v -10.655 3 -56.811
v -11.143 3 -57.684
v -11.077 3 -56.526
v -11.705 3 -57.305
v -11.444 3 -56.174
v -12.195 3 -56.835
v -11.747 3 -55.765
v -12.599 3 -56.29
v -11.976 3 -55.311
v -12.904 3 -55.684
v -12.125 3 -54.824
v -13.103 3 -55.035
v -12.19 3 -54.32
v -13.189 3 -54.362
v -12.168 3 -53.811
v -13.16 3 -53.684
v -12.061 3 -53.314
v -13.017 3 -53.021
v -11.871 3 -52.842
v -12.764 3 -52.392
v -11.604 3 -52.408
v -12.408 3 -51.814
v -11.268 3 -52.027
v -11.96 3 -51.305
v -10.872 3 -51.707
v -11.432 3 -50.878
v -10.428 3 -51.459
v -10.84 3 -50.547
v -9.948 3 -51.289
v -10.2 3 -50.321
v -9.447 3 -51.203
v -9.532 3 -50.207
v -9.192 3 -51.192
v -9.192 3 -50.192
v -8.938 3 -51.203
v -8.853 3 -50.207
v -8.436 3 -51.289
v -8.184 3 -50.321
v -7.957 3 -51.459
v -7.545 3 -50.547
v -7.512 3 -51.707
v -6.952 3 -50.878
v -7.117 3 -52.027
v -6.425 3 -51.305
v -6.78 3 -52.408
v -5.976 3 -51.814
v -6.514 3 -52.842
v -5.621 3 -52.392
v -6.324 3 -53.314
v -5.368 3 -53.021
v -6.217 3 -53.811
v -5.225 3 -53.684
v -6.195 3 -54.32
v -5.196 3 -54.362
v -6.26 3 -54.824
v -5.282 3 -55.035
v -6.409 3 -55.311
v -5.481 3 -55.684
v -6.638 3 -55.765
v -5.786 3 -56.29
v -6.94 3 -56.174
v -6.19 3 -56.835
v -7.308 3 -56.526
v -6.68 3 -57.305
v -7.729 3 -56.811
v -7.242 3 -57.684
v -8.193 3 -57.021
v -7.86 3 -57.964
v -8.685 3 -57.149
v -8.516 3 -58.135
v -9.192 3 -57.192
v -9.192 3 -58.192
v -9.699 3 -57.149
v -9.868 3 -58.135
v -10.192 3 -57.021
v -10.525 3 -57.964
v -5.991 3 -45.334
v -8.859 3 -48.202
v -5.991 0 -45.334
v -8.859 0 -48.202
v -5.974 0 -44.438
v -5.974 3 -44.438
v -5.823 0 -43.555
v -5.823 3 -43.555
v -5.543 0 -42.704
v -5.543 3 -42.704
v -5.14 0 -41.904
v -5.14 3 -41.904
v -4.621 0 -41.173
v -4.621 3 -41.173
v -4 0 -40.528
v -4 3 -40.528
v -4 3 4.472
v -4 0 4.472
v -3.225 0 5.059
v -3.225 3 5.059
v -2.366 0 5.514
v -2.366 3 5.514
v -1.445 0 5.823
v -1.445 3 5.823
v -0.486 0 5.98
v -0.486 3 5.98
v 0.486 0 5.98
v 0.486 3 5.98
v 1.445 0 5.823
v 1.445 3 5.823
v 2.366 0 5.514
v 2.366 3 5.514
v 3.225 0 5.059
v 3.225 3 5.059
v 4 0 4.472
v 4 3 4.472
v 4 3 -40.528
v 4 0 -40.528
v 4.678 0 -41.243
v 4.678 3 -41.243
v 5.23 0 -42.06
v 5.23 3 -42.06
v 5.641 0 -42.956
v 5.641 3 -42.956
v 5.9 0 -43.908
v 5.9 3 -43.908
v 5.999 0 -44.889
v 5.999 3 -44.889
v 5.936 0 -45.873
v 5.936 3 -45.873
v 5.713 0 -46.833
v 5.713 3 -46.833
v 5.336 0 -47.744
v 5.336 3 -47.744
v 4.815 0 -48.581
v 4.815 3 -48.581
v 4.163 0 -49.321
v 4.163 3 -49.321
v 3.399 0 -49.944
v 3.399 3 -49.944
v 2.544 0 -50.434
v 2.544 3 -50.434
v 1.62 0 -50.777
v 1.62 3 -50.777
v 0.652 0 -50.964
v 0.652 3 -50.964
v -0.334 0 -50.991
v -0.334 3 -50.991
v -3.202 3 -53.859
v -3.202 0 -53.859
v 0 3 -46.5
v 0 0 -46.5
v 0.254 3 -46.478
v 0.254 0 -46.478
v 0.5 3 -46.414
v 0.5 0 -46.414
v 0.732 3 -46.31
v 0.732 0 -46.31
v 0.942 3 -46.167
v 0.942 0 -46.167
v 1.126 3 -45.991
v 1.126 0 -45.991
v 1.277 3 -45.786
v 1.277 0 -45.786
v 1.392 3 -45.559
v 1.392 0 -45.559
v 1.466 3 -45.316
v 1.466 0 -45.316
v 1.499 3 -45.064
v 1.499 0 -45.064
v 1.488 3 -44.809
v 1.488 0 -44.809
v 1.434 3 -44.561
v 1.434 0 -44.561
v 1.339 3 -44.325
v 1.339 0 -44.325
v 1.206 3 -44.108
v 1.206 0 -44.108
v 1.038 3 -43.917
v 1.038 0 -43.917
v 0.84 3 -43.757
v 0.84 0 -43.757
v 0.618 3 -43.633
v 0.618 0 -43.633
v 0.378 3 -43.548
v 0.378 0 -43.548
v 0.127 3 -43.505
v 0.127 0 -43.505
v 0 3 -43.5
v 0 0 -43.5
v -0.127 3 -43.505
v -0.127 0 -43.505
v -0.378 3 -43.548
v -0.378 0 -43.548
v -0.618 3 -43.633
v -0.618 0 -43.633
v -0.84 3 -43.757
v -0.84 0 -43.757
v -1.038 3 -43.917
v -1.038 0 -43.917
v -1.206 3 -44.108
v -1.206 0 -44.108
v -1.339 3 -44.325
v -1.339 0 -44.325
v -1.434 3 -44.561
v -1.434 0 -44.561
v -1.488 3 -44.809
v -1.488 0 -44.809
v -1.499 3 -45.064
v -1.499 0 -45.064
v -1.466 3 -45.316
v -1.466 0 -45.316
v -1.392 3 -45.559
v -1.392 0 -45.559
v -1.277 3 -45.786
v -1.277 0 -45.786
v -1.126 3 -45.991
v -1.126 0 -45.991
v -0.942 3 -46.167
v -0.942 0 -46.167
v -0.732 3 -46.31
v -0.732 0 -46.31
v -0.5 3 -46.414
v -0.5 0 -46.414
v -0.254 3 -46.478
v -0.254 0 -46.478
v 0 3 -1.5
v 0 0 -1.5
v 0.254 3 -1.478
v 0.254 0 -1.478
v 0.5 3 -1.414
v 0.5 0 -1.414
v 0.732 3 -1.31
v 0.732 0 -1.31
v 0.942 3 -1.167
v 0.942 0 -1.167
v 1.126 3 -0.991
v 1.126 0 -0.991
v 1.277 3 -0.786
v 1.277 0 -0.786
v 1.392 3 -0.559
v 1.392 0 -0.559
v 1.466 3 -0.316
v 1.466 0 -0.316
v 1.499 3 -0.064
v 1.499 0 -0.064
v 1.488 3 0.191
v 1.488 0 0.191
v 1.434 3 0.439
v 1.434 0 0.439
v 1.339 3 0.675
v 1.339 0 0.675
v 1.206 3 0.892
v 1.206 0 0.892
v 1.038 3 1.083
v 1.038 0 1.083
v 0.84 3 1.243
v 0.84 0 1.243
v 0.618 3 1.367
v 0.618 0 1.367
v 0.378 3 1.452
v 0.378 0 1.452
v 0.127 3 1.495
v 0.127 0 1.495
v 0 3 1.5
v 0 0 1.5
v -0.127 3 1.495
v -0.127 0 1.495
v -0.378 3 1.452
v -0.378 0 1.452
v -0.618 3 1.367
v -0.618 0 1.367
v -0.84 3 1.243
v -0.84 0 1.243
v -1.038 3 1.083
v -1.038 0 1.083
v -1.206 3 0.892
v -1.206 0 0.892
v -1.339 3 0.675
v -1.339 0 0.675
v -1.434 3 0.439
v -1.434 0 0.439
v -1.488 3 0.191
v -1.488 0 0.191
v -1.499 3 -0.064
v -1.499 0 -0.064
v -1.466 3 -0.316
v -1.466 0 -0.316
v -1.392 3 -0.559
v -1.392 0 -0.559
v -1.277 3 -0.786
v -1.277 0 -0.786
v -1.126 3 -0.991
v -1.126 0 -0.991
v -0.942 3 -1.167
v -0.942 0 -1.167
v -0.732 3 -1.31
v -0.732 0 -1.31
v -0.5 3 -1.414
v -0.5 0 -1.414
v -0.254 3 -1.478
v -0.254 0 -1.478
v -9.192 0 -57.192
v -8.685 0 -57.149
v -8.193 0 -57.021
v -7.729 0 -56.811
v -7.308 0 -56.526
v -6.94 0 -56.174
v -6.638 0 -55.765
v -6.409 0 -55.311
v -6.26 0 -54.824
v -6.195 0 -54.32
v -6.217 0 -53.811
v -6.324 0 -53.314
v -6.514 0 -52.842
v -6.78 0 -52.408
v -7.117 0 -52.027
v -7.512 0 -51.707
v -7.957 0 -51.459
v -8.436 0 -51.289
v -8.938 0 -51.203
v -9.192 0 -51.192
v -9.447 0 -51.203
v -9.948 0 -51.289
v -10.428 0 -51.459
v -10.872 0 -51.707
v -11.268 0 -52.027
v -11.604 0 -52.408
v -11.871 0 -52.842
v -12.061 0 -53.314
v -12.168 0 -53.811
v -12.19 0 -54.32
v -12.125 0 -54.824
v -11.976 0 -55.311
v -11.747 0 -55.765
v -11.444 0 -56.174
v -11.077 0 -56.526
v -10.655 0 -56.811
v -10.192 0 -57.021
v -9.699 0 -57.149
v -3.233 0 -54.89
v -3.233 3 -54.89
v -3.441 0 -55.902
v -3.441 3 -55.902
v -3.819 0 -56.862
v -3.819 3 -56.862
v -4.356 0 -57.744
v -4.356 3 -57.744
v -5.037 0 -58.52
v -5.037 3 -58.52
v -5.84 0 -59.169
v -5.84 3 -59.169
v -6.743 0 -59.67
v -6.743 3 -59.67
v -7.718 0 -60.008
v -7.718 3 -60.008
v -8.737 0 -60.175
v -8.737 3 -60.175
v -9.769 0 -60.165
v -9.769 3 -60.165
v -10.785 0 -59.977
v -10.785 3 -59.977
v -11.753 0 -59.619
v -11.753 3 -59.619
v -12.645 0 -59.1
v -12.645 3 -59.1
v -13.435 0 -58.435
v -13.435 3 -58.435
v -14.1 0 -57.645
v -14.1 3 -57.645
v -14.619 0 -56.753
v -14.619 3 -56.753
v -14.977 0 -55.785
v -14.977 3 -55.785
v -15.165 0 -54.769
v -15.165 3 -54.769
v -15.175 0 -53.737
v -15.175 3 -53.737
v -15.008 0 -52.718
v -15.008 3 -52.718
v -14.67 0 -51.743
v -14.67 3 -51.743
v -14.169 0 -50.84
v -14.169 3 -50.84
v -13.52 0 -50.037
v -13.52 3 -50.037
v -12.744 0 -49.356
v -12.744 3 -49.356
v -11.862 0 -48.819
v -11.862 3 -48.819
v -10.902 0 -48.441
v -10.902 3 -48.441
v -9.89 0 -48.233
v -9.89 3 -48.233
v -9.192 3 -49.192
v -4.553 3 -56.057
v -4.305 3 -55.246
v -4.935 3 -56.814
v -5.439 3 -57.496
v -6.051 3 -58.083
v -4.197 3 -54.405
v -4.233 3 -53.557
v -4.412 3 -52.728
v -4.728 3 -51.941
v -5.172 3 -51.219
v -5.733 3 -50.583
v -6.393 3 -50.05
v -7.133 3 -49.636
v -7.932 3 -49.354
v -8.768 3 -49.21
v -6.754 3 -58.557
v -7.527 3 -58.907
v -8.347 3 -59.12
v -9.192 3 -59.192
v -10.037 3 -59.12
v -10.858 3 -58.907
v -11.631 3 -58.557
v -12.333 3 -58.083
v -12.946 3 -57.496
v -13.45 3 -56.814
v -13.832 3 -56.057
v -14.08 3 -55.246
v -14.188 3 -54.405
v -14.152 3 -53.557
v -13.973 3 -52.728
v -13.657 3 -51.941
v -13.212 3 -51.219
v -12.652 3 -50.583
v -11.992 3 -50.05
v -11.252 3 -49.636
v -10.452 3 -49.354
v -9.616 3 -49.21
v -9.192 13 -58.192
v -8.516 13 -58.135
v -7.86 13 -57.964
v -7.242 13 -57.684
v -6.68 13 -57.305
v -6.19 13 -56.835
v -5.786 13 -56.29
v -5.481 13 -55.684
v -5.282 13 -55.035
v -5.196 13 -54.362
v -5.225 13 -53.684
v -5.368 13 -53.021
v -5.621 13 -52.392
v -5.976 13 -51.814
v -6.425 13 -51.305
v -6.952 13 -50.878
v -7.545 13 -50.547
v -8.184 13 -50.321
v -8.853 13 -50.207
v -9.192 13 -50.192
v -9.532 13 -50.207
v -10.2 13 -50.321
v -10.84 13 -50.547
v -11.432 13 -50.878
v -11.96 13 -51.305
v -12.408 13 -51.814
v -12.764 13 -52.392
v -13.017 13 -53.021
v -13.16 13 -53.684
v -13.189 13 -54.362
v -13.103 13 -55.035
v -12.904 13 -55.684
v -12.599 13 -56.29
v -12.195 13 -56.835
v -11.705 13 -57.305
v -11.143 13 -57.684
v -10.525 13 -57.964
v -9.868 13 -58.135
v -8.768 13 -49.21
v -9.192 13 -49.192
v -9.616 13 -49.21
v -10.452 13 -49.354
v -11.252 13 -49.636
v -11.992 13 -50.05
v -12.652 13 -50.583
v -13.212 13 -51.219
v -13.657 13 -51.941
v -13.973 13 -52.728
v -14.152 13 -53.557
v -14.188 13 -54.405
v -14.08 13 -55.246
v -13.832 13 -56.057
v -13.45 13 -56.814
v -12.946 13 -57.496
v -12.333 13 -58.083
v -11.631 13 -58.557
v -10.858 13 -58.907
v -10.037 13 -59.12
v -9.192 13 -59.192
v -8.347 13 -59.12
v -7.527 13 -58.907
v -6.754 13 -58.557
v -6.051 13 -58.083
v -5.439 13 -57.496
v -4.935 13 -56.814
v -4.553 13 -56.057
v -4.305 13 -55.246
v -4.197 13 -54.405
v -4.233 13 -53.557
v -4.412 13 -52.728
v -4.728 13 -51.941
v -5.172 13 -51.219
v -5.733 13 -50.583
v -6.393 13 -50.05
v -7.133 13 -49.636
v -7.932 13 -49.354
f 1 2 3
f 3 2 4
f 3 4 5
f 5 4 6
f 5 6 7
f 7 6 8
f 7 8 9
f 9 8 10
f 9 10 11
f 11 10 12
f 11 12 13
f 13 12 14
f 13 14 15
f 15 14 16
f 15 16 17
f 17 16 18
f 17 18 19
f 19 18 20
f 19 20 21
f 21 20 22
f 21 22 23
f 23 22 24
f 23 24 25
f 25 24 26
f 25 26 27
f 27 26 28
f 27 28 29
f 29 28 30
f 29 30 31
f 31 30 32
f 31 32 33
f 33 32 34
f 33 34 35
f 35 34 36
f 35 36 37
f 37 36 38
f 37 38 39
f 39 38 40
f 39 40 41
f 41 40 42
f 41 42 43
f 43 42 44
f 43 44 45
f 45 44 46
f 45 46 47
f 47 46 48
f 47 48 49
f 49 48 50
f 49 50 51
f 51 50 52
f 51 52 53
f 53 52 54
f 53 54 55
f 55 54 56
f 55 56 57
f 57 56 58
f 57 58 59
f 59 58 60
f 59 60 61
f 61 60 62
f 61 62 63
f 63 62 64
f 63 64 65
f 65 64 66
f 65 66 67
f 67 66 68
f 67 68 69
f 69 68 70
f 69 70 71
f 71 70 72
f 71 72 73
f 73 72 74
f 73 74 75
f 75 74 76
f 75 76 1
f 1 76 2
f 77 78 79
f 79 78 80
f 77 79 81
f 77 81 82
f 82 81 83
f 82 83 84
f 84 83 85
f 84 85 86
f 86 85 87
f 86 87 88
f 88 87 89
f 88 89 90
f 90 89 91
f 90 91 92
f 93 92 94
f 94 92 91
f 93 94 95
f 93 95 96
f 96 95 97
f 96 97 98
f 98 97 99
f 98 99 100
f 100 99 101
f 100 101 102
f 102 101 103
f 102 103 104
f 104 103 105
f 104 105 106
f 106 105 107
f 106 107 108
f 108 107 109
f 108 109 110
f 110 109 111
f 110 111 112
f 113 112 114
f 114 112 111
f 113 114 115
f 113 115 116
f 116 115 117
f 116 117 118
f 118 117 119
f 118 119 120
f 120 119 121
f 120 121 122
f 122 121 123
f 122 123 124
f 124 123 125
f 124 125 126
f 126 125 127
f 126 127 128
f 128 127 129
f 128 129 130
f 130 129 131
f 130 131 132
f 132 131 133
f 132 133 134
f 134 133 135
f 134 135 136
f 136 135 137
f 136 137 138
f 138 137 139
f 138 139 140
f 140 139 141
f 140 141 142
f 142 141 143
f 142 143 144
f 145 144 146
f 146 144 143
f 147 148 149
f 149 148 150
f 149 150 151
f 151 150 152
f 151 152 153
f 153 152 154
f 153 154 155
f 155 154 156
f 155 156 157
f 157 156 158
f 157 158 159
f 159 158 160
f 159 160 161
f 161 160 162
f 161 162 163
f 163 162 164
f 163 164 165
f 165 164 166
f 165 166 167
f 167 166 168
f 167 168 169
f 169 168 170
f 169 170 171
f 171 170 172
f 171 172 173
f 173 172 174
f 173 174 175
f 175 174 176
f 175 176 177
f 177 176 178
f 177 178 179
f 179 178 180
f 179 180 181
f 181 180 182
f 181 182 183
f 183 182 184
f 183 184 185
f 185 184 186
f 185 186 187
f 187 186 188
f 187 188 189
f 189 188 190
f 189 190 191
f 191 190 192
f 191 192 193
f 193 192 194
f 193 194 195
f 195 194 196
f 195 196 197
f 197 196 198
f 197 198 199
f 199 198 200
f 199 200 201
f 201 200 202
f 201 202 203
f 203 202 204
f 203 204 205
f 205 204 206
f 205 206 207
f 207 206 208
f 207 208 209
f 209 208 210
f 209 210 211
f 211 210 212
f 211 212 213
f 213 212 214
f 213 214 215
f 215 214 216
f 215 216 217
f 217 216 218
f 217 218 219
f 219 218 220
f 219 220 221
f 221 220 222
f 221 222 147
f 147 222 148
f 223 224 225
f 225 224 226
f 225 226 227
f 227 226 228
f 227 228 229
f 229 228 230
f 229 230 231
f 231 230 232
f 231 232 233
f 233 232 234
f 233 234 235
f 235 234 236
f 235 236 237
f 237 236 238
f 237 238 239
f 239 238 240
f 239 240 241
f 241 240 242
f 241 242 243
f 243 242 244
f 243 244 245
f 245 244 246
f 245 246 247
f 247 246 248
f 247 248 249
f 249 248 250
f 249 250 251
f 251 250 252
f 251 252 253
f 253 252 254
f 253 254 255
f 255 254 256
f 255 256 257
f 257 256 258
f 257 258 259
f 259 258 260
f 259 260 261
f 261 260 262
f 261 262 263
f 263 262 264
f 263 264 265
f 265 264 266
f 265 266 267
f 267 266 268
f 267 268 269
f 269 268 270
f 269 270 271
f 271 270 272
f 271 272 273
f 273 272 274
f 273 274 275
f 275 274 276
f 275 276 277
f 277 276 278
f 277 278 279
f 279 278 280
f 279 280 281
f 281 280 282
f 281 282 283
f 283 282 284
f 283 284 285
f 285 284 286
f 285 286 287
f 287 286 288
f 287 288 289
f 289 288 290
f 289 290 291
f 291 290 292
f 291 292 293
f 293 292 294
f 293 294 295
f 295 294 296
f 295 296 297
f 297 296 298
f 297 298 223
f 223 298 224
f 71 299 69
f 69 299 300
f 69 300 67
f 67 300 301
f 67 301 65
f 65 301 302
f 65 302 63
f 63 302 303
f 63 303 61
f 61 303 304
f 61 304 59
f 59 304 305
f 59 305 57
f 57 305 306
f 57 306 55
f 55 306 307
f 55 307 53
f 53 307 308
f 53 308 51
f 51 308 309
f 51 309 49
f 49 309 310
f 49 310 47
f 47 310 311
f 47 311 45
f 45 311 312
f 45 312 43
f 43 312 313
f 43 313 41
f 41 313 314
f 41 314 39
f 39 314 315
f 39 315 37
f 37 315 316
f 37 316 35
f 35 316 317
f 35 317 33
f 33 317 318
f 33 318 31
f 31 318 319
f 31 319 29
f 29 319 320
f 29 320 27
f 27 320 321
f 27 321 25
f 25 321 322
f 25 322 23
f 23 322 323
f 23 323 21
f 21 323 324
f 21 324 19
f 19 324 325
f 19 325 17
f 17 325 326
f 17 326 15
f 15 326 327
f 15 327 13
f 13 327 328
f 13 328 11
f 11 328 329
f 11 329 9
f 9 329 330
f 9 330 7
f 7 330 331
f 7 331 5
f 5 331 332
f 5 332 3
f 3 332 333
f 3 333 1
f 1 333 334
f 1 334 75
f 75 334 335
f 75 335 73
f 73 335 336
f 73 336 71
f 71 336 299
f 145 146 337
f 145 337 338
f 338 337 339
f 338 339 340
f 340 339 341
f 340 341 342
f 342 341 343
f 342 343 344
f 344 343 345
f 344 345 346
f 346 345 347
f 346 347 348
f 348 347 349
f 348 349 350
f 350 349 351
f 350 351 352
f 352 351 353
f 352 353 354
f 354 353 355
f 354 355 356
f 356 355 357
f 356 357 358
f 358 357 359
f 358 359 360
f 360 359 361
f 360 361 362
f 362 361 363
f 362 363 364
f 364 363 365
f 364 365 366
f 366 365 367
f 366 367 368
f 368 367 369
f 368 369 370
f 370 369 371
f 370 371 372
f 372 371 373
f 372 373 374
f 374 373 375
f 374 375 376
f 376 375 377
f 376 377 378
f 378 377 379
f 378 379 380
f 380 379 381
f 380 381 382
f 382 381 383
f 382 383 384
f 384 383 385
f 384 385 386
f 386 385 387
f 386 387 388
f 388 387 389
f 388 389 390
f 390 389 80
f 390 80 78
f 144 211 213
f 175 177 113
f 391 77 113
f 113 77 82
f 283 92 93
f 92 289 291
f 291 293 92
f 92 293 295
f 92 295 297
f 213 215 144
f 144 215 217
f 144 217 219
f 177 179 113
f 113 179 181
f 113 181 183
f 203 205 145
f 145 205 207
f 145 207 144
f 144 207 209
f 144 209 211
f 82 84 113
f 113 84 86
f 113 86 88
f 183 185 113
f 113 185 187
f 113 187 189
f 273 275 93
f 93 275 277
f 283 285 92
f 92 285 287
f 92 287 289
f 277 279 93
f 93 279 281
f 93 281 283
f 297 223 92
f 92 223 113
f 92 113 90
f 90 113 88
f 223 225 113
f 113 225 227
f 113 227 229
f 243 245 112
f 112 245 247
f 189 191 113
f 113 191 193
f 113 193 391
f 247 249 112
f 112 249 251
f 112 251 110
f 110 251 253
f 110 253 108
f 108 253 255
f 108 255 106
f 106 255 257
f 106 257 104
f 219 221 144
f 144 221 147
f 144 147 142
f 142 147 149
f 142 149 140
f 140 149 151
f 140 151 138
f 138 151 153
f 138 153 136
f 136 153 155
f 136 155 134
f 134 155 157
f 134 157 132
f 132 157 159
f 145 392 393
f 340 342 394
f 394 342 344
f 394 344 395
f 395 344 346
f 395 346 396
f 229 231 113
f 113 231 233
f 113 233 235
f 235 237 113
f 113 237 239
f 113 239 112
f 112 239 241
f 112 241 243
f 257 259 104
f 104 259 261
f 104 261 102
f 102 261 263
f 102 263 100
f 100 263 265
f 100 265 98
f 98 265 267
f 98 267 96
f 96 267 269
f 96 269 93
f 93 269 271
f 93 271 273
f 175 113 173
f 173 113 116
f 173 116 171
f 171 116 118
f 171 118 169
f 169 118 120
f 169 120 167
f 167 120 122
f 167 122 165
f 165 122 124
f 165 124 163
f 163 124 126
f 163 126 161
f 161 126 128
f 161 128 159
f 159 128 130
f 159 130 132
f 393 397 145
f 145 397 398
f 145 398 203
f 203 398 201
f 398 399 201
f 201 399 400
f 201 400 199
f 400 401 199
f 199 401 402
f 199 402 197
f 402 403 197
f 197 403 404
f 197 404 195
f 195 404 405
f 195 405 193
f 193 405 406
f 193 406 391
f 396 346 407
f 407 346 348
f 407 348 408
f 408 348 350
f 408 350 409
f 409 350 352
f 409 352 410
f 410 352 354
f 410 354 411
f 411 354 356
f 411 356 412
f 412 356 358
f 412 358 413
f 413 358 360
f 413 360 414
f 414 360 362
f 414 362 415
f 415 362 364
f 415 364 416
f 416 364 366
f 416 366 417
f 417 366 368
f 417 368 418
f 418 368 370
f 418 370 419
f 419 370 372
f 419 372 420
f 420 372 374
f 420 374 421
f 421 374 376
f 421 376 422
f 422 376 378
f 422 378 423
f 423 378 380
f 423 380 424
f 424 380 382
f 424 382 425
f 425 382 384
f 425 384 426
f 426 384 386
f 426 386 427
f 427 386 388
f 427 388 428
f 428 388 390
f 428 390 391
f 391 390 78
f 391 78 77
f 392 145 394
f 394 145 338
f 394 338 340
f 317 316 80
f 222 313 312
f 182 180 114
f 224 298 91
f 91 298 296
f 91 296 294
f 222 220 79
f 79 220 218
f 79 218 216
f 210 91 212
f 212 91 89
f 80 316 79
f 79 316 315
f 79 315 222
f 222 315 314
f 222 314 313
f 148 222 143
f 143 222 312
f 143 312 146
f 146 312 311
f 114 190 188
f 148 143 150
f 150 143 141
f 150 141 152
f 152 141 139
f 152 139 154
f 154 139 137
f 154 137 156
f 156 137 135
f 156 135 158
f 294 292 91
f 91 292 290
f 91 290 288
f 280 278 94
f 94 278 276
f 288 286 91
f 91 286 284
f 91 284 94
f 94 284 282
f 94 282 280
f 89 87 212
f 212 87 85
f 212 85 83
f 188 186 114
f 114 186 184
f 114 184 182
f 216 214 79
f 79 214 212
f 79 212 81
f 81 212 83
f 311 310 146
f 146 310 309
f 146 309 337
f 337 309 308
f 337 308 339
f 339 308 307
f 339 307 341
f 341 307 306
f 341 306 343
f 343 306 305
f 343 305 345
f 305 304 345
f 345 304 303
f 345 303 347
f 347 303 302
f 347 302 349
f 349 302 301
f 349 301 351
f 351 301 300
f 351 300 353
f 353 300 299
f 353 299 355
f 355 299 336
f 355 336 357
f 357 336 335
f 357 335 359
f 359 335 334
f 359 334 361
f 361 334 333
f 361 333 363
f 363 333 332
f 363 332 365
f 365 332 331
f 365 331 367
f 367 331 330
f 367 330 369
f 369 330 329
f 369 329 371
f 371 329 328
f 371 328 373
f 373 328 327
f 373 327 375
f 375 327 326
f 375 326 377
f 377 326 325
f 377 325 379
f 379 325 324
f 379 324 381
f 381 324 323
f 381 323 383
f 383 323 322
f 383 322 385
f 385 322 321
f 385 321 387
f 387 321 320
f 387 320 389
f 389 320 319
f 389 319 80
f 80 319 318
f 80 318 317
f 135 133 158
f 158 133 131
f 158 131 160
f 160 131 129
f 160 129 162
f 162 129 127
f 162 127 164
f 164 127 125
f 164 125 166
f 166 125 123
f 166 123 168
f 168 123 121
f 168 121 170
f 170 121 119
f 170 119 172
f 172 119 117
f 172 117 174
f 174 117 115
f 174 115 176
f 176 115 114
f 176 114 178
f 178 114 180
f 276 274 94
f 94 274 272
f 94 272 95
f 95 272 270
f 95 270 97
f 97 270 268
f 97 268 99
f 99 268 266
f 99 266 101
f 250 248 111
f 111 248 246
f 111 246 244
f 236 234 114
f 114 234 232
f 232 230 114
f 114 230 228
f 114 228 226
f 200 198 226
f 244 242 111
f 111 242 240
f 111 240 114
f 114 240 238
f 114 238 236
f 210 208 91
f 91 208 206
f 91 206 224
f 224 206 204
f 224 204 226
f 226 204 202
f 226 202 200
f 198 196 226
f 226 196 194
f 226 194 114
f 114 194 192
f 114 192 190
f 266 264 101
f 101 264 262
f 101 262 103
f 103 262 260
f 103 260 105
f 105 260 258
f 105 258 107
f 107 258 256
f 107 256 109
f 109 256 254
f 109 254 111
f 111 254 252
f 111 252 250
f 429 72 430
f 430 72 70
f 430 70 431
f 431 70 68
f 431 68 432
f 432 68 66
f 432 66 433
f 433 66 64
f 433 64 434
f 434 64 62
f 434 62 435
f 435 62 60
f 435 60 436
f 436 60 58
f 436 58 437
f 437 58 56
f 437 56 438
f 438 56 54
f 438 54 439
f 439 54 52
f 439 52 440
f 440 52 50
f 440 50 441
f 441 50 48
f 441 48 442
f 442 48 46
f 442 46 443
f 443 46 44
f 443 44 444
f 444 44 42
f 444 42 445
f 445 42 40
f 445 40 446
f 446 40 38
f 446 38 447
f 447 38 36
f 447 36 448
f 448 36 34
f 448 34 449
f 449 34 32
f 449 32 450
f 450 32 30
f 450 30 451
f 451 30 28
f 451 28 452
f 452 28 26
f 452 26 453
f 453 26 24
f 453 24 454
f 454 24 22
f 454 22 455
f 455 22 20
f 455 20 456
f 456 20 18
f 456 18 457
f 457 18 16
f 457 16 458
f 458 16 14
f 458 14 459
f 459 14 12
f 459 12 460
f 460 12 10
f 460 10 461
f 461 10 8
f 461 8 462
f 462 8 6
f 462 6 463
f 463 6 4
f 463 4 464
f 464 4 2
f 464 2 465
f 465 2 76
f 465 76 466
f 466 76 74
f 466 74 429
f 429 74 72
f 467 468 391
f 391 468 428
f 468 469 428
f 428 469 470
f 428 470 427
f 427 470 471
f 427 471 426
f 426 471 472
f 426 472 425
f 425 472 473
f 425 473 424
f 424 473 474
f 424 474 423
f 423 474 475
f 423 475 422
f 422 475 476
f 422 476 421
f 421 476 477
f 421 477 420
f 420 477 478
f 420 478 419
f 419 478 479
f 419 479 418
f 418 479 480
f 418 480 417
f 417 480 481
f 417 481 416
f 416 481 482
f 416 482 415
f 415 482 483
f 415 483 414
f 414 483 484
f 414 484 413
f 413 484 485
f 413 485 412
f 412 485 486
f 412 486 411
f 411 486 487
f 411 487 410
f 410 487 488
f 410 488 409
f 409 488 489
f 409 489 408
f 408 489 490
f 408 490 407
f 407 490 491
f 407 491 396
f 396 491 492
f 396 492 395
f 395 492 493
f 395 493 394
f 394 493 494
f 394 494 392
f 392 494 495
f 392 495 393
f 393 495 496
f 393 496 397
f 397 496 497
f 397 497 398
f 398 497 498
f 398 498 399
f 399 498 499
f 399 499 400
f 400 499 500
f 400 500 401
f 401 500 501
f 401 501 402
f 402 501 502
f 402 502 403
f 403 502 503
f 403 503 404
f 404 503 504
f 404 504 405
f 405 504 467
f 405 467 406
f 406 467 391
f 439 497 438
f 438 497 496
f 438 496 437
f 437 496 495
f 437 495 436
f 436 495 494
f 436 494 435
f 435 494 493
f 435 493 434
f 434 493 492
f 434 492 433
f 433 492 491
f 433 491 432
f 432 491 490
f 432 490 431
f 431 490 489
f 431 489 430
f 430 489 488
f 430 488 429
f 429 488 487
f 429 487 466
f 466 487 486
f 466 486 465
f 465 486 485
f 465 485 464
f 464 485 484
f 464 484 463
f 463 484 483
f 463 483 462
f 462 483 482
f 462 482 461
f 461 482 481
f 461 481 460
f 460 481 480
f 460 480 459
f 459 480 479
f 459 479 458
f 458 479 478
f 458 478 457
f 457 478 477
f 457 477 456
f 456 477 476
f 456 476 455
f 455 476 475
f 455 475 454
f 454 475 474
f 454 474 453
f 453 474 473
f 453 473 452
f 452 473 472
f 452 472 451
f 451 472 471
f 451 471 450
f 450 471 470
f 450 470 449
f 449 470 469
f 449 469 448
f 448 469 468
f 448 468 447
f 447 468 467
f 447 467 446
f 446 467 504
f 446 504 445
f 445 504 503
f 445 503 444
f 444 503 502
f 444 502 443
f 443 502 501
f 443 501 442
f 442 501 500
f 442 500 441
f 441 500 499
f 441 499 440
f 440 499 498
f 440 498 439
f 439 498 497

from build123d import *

# Parameters (mm, degrees)
ESQUISSE1_R        = 1.5
ESQUISSE1_R_2      = 4
ESQUISSE1_R_3      = 3
BOSS_EXTRU_1_DEPTH = 3
ESQUISSE2_R        = 5
ESQUISSE2_R_2      = 4
BOSS_EXTRU_2_DEPTH = 10


with BuildPart() as part:
    # Esquisse1 → Boss.-Extru.1 (new body)
    with BuildSketch(Plane(origin=(0, 0, 0), x_dir=(1, 0, 0), z_dir=(0, 1, 0))):
        with BuildLine():
            Line((-4, 4.472135955), (-4, -4.472135955))
            ThreePointArc((-4, -4.472135955), (0, -6), (4, -4.472135955))
            Line((4, -4.472135955), (4, 4.472135955))
            Line((4, 4.472135955), (4, 40.527864045))
            ThreePointArc((4, 40.527864045), (5.543277195, 47.296100594), (-0.333850535, 50.990704785))
            Line((-0.333850535, 50.990704785), (-3.201683371, 53.85853762))
            ThreePointArc((-3.201683371, 53.85853762), (-13.435028843, 58.435028843), (-8.85853762, 48.201683371))
            Line((-8.85853762, 48.201683371), (-5.990704785, 45.333850535))
            ThreePointArc((-5.990704785, 45.333850535), (-5.543277195, 42.703899406), (-4, 40.527864045))
            Line((-4, 40.527864045), (-4, 4.472135955))
        make_face()
        with Locations(Location((0, 0, 0), (0, 0, 270))):
            Circle(ESQUISSE1_R, mode=Mode.SUBTRACT)
        with Locations((-9.192388155, 54.192388155)):
            Circle(ESQUISSE1_R_2, mode=Mode.SUBTRACT)
        with Locations(Location((0, 45, 0), (0, 0, 270))):
            Circle(ESQUISSE1_R, mode=Mode.SUBTRACT)
        with Locations((-9.192388155, 54.192388155)):
            Circle(ESQUISSE1_R_2)
        with Locations(Location((-9.192388155, 54.192388155, 0), (0, 0, 270))):
            Circle(ESQUISSE1_R_3, mode=Mode.SUBTRACT)
    extrude(amount=BOSS_EXTRU_1_DEPTH)

    # Esquisse2 → Boss.-Extru.2 (add)
    with BuildSketch(Plane(origin=(0, 3, 0), x_dir=(1, 0, 0), z_dir=(0, 1, 0))):
        with Locations(Location((-9.192388155, 54.192388155, 0), (0, 0, 270))):
            Circle(ESQUISSE2_R)
        with Locations(Location((-9.192388155, 54.192388155, 0), (0, 0, 270))):
            Circle(ESQUISSE2_R_2, mode=Mode.SUBTRACT)
    extrude(amount=BOSS_EXTRU_2_DEPTH)


solid = part.part
